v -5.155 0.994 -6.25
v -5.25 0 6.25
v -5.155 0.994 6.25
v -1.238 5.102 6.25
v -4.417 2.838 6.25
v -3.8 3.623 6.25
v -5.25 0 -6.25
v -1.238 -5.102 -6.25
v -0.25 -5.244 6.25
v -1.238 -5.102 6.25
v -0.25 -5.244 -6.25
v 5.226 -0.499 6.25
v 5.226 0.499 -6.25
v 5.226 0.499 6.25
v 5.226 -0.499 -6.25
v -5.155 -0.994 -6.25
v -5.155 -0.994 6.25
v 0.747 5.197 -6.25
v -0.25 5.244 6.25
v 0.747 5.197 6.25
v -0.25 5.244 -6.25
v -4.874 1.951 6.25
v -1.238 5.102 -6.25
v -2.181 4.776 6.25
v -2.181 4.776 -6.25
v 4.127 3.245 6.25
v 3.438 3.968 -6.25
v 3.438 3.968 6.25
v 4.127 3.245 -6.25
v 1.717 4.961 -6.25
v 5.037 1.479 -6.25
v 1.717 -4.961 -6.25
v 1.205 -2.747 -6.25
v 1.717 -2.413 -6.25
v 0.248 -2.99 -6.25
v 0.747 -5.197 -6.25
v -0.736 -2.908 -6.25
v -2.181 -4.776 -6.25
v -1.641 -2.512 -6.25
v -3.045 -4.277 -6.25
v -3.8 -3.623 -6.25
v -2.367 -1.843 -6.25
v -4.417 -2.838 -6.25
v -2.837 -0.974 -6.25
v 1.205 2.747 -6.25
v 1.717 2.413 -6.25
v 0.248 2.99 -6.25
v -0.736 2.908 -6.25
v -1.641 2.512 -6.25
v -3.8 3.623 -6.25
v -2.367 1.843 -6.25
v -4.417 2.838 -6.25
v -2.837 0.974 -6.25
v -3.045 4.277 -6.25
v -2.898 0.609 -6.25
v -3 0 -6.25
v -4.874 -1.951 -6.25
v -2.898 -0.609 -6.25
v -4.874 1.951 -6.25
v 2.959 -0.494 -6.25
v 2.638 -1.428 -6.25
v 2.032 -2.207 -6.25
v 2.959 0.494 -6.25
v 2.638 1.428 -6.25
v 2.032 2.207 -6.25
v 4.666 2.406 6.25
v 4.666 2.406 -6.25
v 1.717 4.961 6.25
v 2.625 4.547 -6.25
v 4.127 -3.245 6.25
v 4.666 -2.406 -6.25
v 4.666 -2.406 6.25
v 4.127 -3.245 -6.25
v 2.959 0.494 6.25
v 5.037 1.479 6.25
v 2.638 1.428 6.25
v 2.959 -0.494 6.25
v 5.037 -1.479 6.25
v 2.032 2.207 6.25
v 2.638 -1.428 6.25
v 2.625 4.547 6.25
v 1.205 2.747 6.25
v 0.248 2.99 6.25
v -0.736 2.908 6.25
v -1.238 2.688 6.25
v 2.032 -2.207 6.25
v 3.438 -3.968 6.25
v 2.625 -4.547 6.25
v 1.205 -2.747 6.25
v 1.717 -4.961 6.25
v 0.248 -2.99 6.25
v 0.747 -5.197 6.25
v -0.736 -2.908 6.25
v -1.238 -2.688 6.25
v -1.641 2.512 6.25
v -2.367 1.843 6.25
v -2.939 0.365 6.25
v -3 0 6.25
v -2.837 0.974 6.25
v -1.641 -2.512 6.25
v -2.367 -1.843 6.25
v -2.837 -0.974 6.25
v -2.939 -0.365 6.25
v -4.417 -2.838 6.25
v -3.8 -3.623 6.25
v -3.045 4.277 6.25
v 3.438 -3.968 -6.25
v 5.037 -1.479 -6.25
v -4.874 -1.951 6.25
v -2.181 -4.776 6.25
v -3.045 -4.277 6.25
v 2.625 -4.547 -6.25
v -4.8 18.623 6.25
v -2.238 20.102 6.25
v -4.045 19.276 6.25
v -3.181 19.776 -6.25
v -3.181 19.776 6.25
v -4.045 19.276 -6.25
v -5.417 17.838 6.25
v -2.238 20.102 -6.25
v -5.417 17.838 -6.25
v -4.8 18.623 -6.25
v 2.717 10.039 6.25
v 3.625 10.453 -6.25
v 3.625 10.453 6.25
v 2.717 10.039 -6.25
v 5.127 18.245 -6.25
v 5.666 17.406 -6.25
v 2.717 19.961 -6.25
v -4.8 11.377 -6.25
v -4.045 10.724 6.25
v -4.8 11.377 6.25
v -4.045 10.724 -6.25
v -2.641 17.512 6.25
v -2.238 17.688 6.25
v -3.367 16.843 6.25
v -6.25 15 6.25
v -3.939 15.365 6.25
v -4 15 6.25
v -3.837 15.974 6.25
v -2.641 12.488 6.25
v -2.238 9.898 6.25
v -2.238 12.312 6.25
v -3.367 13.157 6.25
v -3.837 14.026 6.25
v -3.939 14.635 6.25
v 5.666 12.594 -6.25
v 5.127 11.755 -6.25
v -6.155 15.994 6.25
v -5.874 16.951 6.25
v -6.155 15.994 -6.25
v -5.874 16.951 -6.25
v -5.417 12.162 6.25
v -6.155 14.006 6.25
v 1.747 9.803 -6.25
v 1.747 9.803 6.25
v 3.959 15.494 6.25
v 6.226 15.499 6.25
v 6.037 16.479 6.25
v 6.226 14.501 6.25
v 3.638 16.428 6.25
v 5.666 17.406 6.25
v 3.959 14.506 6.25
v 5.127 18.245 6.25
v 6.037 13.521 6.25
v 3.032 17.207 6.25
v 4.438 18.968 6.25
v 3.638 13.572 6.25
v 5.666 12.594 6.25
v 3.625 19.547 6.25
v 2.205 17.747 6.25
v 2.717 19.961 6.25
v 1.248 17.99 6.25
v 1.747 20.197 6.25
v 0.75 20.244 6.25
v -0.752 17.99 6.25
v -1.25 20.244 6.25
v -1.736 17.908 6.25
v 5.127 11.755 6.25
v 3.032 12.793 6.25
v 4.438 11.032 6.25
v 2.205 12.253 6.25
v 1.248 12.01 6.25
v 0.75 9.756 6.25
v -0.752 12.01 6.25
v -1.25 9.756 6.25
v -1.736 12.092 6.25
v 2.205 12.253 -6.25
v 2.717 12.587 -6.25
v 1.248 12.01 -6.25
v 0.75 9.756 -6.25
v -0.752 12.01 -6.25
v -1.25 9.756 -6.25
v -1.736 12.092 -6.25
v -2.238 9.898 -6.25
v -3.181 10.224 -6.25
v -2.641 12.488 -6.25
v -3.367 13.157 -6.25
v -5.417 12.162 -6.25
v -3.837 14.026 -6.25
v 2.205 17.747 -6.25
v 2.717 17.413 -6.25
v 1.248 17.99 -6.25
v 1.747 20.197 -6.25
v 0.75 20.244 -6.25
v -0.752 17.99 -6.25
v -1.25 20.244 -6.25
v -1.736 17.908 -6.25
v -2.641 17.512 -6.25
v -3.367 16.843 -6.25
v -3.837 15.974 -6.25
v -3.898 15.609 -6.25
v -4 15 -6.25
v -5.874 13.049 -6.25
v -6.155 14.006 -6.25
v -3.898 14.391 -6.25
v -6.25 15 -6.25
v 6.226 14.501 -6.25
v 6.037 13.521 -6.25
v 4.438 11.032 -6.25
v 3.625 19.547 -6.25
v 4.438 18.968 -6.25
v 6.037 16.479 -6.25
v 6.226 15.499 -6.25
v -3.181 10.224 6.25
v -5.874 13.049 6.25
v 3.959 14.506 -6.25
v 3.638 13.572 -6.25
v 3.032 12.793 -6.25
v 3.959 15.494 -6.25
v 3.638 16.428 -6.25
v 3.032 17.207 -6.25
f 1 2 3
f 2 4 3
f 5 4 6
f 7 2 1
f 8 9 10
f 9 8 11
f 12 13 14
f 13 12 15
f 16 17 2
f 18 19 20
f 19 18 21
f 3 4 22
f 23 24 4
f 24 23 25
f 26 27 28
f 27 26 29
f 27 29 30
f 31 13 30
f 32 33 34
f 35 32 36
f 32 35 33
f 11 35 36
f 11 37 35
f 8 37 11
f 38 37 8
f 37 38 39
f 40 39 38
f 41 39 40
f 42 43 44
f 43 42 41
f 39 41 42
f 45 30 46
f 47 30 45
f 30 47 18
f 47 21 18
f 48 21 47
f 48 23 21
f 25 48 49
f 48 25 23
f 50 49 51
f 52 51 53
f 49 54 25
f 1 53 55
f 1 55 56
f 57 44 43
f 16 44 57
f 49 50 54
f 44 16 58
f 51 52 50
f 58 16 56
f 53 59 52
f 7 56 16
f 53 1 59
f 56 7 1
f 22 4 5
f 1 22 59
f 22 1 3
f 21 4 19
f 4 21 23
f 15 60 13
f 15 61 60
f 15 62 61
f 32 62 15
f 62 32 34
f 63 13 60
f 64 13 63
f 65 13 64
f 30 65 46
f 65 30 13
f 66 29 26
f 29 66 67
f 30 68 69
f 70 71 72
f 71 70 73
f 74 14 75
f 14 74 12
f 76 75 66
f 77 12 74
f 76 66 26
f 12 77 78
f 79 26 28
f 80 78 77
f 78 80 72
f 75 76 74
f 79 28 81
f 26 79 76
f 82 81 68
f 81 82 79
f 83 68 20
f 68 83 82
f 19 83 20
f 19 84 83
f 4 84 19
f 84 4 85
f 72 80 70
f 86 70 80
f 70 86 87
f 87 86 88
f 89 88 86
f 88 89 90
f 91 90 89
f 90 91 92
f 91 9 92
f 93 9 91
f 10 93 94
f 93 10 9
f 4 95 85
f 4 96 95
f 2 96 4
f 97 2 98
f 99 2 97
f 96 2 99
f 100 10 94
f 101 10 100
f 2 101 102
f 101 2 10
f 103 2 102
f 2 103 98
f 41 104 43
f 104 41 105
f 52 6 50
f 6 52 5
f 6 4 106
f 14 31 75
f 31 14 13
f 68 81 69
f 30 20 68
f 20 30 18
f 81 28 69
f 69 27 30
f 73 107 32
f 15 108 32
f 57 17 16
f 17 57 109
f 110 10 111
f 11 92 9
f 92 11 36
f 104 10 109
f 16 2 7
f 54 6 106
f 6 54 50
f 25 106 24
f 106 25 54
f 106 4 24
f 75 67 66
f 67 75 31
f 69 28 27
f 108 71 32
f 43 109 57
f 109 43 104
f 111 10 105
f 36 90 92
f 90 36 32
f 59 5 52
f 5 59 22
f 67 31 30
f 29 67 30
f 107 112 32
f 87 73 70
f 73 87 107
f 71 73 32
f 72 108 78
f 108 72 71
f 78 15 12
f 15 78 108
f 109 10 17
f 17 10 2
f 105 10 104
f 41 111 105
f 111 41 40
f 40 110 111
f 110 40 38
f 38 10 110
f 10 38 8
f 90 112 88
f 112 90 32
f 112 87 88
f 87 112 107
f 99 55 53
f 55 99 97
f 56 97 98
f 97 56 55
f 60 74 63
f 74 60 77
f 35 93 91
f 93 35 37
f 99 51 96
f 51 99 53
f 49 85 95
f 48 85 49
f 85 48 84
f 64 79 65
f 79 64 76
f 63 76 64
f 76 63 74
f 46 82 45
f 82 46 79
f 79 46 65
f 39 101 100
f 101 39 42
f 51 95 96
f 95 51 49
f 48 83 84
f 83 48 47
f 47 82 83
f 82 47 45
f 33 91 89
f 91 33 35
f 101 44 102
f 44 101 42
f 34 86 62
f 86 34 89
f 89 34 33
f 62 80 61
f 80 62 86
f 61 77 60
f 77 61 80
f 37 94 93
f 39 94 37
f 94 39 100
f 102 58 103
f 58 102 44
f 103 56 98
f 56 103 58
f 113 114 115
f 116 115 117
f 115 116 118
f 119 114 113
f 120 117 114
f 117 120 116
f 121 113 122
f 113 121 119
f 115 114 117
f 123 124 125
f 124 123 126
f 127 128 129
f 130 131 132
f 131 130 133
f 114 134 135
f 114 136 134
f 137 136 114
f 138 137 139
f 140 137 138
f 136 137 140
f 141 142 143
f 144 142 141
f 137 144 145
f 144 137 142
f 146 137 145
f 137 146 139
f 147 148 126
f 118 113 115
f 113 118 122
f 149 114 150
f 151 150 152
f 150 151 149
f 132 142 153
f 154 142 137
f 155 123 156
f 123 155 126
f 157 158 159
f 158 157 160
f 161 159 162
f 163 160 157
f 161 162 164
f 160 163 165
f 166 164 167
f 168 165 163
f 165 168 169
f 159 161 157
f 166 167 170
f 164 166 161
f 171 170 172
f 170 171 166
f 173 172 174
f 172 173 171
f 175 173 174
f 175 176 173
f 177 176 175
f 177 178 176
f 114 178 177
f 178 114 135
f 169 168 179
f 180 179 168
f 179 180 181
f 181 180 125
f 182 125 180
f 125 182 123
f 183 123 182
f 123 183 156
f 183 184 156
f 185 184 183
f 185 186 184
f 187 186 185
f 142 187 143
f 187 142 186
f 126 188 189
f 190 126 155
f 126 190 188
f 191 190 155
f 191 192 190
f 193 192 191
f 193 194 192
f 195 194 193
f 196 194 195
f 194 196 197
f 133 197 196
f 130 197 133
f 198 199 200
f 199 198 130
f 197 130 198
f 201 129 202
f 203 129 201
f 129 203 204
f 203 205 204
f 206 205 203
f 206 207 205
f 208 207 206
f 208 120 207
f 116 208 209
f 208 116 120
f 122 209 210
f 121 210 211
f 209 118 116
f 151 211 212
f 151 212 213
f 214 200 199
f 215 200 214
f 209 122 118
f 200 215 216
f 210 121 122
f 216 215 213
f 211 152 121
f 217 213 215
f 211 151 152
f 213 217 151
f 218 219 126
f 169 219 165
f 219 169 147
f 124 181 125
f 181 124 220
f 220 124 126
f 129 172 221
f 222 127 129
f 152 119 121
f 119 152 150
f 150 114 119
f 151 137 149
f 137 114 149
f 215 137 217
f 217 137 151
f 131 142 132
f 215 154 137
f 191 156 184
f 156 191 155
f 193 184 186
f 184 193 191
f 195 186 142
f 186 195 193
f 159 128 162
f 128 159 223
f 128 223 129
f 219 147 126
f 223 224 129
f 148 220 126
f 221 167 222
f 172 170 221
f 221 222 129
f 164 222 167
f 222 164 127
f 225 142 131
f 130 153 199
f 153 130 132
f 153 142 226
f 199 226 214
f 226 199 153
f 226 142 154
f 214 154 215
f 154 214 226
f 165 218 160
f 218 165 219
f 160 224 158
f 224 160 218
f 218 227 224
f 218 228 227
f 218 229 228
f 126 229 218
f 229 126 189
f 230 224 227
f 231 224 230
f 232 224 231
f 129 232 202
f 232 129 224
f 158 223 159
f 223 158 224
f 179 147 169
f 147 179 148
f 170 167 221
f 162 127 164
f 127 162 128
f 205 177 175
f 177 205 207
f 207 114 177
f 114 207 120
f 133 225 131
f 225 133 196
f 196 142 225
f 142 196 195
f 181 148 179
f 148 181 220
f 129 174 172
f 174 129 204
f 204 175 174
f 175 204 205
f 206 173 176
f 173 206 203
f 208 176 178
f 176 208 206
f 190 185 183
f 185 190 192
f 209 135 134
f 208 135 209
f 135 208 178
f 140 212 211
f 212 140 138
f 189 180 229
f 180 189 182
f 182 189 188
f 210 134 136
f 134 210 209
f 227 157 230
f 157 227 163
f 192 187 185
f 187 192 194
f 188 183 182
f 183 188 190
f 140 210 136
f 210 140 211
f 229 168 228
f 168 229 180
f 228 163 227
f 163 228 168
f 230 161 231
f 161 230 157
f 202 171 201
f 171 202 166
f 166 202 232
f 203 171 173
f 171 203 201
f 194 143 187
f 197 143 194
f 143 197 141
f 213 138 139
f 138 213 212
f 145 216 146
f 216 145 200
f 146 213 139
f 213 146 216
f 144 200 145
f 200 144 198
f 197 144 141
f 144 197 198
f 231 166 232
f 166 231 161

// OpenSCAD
use <high-rise-cage-with-pump.scad>

rotate([0, 90]) {
    difference() {
        insert(dd = -1, dh = 8);
        thruHole();
    }

    translate([0, 15])
    difference() {
        hull() {
            translate([0,0,1]) insert(dd = -1, dh = 8);
            translate([0,0,-1]) insert(dd = -1, dh = 8);
        }
        hull() {
            translate([0,0,1]) thruHole();
            translate([0,0,-1]) thruHole();
        }
    }
}
